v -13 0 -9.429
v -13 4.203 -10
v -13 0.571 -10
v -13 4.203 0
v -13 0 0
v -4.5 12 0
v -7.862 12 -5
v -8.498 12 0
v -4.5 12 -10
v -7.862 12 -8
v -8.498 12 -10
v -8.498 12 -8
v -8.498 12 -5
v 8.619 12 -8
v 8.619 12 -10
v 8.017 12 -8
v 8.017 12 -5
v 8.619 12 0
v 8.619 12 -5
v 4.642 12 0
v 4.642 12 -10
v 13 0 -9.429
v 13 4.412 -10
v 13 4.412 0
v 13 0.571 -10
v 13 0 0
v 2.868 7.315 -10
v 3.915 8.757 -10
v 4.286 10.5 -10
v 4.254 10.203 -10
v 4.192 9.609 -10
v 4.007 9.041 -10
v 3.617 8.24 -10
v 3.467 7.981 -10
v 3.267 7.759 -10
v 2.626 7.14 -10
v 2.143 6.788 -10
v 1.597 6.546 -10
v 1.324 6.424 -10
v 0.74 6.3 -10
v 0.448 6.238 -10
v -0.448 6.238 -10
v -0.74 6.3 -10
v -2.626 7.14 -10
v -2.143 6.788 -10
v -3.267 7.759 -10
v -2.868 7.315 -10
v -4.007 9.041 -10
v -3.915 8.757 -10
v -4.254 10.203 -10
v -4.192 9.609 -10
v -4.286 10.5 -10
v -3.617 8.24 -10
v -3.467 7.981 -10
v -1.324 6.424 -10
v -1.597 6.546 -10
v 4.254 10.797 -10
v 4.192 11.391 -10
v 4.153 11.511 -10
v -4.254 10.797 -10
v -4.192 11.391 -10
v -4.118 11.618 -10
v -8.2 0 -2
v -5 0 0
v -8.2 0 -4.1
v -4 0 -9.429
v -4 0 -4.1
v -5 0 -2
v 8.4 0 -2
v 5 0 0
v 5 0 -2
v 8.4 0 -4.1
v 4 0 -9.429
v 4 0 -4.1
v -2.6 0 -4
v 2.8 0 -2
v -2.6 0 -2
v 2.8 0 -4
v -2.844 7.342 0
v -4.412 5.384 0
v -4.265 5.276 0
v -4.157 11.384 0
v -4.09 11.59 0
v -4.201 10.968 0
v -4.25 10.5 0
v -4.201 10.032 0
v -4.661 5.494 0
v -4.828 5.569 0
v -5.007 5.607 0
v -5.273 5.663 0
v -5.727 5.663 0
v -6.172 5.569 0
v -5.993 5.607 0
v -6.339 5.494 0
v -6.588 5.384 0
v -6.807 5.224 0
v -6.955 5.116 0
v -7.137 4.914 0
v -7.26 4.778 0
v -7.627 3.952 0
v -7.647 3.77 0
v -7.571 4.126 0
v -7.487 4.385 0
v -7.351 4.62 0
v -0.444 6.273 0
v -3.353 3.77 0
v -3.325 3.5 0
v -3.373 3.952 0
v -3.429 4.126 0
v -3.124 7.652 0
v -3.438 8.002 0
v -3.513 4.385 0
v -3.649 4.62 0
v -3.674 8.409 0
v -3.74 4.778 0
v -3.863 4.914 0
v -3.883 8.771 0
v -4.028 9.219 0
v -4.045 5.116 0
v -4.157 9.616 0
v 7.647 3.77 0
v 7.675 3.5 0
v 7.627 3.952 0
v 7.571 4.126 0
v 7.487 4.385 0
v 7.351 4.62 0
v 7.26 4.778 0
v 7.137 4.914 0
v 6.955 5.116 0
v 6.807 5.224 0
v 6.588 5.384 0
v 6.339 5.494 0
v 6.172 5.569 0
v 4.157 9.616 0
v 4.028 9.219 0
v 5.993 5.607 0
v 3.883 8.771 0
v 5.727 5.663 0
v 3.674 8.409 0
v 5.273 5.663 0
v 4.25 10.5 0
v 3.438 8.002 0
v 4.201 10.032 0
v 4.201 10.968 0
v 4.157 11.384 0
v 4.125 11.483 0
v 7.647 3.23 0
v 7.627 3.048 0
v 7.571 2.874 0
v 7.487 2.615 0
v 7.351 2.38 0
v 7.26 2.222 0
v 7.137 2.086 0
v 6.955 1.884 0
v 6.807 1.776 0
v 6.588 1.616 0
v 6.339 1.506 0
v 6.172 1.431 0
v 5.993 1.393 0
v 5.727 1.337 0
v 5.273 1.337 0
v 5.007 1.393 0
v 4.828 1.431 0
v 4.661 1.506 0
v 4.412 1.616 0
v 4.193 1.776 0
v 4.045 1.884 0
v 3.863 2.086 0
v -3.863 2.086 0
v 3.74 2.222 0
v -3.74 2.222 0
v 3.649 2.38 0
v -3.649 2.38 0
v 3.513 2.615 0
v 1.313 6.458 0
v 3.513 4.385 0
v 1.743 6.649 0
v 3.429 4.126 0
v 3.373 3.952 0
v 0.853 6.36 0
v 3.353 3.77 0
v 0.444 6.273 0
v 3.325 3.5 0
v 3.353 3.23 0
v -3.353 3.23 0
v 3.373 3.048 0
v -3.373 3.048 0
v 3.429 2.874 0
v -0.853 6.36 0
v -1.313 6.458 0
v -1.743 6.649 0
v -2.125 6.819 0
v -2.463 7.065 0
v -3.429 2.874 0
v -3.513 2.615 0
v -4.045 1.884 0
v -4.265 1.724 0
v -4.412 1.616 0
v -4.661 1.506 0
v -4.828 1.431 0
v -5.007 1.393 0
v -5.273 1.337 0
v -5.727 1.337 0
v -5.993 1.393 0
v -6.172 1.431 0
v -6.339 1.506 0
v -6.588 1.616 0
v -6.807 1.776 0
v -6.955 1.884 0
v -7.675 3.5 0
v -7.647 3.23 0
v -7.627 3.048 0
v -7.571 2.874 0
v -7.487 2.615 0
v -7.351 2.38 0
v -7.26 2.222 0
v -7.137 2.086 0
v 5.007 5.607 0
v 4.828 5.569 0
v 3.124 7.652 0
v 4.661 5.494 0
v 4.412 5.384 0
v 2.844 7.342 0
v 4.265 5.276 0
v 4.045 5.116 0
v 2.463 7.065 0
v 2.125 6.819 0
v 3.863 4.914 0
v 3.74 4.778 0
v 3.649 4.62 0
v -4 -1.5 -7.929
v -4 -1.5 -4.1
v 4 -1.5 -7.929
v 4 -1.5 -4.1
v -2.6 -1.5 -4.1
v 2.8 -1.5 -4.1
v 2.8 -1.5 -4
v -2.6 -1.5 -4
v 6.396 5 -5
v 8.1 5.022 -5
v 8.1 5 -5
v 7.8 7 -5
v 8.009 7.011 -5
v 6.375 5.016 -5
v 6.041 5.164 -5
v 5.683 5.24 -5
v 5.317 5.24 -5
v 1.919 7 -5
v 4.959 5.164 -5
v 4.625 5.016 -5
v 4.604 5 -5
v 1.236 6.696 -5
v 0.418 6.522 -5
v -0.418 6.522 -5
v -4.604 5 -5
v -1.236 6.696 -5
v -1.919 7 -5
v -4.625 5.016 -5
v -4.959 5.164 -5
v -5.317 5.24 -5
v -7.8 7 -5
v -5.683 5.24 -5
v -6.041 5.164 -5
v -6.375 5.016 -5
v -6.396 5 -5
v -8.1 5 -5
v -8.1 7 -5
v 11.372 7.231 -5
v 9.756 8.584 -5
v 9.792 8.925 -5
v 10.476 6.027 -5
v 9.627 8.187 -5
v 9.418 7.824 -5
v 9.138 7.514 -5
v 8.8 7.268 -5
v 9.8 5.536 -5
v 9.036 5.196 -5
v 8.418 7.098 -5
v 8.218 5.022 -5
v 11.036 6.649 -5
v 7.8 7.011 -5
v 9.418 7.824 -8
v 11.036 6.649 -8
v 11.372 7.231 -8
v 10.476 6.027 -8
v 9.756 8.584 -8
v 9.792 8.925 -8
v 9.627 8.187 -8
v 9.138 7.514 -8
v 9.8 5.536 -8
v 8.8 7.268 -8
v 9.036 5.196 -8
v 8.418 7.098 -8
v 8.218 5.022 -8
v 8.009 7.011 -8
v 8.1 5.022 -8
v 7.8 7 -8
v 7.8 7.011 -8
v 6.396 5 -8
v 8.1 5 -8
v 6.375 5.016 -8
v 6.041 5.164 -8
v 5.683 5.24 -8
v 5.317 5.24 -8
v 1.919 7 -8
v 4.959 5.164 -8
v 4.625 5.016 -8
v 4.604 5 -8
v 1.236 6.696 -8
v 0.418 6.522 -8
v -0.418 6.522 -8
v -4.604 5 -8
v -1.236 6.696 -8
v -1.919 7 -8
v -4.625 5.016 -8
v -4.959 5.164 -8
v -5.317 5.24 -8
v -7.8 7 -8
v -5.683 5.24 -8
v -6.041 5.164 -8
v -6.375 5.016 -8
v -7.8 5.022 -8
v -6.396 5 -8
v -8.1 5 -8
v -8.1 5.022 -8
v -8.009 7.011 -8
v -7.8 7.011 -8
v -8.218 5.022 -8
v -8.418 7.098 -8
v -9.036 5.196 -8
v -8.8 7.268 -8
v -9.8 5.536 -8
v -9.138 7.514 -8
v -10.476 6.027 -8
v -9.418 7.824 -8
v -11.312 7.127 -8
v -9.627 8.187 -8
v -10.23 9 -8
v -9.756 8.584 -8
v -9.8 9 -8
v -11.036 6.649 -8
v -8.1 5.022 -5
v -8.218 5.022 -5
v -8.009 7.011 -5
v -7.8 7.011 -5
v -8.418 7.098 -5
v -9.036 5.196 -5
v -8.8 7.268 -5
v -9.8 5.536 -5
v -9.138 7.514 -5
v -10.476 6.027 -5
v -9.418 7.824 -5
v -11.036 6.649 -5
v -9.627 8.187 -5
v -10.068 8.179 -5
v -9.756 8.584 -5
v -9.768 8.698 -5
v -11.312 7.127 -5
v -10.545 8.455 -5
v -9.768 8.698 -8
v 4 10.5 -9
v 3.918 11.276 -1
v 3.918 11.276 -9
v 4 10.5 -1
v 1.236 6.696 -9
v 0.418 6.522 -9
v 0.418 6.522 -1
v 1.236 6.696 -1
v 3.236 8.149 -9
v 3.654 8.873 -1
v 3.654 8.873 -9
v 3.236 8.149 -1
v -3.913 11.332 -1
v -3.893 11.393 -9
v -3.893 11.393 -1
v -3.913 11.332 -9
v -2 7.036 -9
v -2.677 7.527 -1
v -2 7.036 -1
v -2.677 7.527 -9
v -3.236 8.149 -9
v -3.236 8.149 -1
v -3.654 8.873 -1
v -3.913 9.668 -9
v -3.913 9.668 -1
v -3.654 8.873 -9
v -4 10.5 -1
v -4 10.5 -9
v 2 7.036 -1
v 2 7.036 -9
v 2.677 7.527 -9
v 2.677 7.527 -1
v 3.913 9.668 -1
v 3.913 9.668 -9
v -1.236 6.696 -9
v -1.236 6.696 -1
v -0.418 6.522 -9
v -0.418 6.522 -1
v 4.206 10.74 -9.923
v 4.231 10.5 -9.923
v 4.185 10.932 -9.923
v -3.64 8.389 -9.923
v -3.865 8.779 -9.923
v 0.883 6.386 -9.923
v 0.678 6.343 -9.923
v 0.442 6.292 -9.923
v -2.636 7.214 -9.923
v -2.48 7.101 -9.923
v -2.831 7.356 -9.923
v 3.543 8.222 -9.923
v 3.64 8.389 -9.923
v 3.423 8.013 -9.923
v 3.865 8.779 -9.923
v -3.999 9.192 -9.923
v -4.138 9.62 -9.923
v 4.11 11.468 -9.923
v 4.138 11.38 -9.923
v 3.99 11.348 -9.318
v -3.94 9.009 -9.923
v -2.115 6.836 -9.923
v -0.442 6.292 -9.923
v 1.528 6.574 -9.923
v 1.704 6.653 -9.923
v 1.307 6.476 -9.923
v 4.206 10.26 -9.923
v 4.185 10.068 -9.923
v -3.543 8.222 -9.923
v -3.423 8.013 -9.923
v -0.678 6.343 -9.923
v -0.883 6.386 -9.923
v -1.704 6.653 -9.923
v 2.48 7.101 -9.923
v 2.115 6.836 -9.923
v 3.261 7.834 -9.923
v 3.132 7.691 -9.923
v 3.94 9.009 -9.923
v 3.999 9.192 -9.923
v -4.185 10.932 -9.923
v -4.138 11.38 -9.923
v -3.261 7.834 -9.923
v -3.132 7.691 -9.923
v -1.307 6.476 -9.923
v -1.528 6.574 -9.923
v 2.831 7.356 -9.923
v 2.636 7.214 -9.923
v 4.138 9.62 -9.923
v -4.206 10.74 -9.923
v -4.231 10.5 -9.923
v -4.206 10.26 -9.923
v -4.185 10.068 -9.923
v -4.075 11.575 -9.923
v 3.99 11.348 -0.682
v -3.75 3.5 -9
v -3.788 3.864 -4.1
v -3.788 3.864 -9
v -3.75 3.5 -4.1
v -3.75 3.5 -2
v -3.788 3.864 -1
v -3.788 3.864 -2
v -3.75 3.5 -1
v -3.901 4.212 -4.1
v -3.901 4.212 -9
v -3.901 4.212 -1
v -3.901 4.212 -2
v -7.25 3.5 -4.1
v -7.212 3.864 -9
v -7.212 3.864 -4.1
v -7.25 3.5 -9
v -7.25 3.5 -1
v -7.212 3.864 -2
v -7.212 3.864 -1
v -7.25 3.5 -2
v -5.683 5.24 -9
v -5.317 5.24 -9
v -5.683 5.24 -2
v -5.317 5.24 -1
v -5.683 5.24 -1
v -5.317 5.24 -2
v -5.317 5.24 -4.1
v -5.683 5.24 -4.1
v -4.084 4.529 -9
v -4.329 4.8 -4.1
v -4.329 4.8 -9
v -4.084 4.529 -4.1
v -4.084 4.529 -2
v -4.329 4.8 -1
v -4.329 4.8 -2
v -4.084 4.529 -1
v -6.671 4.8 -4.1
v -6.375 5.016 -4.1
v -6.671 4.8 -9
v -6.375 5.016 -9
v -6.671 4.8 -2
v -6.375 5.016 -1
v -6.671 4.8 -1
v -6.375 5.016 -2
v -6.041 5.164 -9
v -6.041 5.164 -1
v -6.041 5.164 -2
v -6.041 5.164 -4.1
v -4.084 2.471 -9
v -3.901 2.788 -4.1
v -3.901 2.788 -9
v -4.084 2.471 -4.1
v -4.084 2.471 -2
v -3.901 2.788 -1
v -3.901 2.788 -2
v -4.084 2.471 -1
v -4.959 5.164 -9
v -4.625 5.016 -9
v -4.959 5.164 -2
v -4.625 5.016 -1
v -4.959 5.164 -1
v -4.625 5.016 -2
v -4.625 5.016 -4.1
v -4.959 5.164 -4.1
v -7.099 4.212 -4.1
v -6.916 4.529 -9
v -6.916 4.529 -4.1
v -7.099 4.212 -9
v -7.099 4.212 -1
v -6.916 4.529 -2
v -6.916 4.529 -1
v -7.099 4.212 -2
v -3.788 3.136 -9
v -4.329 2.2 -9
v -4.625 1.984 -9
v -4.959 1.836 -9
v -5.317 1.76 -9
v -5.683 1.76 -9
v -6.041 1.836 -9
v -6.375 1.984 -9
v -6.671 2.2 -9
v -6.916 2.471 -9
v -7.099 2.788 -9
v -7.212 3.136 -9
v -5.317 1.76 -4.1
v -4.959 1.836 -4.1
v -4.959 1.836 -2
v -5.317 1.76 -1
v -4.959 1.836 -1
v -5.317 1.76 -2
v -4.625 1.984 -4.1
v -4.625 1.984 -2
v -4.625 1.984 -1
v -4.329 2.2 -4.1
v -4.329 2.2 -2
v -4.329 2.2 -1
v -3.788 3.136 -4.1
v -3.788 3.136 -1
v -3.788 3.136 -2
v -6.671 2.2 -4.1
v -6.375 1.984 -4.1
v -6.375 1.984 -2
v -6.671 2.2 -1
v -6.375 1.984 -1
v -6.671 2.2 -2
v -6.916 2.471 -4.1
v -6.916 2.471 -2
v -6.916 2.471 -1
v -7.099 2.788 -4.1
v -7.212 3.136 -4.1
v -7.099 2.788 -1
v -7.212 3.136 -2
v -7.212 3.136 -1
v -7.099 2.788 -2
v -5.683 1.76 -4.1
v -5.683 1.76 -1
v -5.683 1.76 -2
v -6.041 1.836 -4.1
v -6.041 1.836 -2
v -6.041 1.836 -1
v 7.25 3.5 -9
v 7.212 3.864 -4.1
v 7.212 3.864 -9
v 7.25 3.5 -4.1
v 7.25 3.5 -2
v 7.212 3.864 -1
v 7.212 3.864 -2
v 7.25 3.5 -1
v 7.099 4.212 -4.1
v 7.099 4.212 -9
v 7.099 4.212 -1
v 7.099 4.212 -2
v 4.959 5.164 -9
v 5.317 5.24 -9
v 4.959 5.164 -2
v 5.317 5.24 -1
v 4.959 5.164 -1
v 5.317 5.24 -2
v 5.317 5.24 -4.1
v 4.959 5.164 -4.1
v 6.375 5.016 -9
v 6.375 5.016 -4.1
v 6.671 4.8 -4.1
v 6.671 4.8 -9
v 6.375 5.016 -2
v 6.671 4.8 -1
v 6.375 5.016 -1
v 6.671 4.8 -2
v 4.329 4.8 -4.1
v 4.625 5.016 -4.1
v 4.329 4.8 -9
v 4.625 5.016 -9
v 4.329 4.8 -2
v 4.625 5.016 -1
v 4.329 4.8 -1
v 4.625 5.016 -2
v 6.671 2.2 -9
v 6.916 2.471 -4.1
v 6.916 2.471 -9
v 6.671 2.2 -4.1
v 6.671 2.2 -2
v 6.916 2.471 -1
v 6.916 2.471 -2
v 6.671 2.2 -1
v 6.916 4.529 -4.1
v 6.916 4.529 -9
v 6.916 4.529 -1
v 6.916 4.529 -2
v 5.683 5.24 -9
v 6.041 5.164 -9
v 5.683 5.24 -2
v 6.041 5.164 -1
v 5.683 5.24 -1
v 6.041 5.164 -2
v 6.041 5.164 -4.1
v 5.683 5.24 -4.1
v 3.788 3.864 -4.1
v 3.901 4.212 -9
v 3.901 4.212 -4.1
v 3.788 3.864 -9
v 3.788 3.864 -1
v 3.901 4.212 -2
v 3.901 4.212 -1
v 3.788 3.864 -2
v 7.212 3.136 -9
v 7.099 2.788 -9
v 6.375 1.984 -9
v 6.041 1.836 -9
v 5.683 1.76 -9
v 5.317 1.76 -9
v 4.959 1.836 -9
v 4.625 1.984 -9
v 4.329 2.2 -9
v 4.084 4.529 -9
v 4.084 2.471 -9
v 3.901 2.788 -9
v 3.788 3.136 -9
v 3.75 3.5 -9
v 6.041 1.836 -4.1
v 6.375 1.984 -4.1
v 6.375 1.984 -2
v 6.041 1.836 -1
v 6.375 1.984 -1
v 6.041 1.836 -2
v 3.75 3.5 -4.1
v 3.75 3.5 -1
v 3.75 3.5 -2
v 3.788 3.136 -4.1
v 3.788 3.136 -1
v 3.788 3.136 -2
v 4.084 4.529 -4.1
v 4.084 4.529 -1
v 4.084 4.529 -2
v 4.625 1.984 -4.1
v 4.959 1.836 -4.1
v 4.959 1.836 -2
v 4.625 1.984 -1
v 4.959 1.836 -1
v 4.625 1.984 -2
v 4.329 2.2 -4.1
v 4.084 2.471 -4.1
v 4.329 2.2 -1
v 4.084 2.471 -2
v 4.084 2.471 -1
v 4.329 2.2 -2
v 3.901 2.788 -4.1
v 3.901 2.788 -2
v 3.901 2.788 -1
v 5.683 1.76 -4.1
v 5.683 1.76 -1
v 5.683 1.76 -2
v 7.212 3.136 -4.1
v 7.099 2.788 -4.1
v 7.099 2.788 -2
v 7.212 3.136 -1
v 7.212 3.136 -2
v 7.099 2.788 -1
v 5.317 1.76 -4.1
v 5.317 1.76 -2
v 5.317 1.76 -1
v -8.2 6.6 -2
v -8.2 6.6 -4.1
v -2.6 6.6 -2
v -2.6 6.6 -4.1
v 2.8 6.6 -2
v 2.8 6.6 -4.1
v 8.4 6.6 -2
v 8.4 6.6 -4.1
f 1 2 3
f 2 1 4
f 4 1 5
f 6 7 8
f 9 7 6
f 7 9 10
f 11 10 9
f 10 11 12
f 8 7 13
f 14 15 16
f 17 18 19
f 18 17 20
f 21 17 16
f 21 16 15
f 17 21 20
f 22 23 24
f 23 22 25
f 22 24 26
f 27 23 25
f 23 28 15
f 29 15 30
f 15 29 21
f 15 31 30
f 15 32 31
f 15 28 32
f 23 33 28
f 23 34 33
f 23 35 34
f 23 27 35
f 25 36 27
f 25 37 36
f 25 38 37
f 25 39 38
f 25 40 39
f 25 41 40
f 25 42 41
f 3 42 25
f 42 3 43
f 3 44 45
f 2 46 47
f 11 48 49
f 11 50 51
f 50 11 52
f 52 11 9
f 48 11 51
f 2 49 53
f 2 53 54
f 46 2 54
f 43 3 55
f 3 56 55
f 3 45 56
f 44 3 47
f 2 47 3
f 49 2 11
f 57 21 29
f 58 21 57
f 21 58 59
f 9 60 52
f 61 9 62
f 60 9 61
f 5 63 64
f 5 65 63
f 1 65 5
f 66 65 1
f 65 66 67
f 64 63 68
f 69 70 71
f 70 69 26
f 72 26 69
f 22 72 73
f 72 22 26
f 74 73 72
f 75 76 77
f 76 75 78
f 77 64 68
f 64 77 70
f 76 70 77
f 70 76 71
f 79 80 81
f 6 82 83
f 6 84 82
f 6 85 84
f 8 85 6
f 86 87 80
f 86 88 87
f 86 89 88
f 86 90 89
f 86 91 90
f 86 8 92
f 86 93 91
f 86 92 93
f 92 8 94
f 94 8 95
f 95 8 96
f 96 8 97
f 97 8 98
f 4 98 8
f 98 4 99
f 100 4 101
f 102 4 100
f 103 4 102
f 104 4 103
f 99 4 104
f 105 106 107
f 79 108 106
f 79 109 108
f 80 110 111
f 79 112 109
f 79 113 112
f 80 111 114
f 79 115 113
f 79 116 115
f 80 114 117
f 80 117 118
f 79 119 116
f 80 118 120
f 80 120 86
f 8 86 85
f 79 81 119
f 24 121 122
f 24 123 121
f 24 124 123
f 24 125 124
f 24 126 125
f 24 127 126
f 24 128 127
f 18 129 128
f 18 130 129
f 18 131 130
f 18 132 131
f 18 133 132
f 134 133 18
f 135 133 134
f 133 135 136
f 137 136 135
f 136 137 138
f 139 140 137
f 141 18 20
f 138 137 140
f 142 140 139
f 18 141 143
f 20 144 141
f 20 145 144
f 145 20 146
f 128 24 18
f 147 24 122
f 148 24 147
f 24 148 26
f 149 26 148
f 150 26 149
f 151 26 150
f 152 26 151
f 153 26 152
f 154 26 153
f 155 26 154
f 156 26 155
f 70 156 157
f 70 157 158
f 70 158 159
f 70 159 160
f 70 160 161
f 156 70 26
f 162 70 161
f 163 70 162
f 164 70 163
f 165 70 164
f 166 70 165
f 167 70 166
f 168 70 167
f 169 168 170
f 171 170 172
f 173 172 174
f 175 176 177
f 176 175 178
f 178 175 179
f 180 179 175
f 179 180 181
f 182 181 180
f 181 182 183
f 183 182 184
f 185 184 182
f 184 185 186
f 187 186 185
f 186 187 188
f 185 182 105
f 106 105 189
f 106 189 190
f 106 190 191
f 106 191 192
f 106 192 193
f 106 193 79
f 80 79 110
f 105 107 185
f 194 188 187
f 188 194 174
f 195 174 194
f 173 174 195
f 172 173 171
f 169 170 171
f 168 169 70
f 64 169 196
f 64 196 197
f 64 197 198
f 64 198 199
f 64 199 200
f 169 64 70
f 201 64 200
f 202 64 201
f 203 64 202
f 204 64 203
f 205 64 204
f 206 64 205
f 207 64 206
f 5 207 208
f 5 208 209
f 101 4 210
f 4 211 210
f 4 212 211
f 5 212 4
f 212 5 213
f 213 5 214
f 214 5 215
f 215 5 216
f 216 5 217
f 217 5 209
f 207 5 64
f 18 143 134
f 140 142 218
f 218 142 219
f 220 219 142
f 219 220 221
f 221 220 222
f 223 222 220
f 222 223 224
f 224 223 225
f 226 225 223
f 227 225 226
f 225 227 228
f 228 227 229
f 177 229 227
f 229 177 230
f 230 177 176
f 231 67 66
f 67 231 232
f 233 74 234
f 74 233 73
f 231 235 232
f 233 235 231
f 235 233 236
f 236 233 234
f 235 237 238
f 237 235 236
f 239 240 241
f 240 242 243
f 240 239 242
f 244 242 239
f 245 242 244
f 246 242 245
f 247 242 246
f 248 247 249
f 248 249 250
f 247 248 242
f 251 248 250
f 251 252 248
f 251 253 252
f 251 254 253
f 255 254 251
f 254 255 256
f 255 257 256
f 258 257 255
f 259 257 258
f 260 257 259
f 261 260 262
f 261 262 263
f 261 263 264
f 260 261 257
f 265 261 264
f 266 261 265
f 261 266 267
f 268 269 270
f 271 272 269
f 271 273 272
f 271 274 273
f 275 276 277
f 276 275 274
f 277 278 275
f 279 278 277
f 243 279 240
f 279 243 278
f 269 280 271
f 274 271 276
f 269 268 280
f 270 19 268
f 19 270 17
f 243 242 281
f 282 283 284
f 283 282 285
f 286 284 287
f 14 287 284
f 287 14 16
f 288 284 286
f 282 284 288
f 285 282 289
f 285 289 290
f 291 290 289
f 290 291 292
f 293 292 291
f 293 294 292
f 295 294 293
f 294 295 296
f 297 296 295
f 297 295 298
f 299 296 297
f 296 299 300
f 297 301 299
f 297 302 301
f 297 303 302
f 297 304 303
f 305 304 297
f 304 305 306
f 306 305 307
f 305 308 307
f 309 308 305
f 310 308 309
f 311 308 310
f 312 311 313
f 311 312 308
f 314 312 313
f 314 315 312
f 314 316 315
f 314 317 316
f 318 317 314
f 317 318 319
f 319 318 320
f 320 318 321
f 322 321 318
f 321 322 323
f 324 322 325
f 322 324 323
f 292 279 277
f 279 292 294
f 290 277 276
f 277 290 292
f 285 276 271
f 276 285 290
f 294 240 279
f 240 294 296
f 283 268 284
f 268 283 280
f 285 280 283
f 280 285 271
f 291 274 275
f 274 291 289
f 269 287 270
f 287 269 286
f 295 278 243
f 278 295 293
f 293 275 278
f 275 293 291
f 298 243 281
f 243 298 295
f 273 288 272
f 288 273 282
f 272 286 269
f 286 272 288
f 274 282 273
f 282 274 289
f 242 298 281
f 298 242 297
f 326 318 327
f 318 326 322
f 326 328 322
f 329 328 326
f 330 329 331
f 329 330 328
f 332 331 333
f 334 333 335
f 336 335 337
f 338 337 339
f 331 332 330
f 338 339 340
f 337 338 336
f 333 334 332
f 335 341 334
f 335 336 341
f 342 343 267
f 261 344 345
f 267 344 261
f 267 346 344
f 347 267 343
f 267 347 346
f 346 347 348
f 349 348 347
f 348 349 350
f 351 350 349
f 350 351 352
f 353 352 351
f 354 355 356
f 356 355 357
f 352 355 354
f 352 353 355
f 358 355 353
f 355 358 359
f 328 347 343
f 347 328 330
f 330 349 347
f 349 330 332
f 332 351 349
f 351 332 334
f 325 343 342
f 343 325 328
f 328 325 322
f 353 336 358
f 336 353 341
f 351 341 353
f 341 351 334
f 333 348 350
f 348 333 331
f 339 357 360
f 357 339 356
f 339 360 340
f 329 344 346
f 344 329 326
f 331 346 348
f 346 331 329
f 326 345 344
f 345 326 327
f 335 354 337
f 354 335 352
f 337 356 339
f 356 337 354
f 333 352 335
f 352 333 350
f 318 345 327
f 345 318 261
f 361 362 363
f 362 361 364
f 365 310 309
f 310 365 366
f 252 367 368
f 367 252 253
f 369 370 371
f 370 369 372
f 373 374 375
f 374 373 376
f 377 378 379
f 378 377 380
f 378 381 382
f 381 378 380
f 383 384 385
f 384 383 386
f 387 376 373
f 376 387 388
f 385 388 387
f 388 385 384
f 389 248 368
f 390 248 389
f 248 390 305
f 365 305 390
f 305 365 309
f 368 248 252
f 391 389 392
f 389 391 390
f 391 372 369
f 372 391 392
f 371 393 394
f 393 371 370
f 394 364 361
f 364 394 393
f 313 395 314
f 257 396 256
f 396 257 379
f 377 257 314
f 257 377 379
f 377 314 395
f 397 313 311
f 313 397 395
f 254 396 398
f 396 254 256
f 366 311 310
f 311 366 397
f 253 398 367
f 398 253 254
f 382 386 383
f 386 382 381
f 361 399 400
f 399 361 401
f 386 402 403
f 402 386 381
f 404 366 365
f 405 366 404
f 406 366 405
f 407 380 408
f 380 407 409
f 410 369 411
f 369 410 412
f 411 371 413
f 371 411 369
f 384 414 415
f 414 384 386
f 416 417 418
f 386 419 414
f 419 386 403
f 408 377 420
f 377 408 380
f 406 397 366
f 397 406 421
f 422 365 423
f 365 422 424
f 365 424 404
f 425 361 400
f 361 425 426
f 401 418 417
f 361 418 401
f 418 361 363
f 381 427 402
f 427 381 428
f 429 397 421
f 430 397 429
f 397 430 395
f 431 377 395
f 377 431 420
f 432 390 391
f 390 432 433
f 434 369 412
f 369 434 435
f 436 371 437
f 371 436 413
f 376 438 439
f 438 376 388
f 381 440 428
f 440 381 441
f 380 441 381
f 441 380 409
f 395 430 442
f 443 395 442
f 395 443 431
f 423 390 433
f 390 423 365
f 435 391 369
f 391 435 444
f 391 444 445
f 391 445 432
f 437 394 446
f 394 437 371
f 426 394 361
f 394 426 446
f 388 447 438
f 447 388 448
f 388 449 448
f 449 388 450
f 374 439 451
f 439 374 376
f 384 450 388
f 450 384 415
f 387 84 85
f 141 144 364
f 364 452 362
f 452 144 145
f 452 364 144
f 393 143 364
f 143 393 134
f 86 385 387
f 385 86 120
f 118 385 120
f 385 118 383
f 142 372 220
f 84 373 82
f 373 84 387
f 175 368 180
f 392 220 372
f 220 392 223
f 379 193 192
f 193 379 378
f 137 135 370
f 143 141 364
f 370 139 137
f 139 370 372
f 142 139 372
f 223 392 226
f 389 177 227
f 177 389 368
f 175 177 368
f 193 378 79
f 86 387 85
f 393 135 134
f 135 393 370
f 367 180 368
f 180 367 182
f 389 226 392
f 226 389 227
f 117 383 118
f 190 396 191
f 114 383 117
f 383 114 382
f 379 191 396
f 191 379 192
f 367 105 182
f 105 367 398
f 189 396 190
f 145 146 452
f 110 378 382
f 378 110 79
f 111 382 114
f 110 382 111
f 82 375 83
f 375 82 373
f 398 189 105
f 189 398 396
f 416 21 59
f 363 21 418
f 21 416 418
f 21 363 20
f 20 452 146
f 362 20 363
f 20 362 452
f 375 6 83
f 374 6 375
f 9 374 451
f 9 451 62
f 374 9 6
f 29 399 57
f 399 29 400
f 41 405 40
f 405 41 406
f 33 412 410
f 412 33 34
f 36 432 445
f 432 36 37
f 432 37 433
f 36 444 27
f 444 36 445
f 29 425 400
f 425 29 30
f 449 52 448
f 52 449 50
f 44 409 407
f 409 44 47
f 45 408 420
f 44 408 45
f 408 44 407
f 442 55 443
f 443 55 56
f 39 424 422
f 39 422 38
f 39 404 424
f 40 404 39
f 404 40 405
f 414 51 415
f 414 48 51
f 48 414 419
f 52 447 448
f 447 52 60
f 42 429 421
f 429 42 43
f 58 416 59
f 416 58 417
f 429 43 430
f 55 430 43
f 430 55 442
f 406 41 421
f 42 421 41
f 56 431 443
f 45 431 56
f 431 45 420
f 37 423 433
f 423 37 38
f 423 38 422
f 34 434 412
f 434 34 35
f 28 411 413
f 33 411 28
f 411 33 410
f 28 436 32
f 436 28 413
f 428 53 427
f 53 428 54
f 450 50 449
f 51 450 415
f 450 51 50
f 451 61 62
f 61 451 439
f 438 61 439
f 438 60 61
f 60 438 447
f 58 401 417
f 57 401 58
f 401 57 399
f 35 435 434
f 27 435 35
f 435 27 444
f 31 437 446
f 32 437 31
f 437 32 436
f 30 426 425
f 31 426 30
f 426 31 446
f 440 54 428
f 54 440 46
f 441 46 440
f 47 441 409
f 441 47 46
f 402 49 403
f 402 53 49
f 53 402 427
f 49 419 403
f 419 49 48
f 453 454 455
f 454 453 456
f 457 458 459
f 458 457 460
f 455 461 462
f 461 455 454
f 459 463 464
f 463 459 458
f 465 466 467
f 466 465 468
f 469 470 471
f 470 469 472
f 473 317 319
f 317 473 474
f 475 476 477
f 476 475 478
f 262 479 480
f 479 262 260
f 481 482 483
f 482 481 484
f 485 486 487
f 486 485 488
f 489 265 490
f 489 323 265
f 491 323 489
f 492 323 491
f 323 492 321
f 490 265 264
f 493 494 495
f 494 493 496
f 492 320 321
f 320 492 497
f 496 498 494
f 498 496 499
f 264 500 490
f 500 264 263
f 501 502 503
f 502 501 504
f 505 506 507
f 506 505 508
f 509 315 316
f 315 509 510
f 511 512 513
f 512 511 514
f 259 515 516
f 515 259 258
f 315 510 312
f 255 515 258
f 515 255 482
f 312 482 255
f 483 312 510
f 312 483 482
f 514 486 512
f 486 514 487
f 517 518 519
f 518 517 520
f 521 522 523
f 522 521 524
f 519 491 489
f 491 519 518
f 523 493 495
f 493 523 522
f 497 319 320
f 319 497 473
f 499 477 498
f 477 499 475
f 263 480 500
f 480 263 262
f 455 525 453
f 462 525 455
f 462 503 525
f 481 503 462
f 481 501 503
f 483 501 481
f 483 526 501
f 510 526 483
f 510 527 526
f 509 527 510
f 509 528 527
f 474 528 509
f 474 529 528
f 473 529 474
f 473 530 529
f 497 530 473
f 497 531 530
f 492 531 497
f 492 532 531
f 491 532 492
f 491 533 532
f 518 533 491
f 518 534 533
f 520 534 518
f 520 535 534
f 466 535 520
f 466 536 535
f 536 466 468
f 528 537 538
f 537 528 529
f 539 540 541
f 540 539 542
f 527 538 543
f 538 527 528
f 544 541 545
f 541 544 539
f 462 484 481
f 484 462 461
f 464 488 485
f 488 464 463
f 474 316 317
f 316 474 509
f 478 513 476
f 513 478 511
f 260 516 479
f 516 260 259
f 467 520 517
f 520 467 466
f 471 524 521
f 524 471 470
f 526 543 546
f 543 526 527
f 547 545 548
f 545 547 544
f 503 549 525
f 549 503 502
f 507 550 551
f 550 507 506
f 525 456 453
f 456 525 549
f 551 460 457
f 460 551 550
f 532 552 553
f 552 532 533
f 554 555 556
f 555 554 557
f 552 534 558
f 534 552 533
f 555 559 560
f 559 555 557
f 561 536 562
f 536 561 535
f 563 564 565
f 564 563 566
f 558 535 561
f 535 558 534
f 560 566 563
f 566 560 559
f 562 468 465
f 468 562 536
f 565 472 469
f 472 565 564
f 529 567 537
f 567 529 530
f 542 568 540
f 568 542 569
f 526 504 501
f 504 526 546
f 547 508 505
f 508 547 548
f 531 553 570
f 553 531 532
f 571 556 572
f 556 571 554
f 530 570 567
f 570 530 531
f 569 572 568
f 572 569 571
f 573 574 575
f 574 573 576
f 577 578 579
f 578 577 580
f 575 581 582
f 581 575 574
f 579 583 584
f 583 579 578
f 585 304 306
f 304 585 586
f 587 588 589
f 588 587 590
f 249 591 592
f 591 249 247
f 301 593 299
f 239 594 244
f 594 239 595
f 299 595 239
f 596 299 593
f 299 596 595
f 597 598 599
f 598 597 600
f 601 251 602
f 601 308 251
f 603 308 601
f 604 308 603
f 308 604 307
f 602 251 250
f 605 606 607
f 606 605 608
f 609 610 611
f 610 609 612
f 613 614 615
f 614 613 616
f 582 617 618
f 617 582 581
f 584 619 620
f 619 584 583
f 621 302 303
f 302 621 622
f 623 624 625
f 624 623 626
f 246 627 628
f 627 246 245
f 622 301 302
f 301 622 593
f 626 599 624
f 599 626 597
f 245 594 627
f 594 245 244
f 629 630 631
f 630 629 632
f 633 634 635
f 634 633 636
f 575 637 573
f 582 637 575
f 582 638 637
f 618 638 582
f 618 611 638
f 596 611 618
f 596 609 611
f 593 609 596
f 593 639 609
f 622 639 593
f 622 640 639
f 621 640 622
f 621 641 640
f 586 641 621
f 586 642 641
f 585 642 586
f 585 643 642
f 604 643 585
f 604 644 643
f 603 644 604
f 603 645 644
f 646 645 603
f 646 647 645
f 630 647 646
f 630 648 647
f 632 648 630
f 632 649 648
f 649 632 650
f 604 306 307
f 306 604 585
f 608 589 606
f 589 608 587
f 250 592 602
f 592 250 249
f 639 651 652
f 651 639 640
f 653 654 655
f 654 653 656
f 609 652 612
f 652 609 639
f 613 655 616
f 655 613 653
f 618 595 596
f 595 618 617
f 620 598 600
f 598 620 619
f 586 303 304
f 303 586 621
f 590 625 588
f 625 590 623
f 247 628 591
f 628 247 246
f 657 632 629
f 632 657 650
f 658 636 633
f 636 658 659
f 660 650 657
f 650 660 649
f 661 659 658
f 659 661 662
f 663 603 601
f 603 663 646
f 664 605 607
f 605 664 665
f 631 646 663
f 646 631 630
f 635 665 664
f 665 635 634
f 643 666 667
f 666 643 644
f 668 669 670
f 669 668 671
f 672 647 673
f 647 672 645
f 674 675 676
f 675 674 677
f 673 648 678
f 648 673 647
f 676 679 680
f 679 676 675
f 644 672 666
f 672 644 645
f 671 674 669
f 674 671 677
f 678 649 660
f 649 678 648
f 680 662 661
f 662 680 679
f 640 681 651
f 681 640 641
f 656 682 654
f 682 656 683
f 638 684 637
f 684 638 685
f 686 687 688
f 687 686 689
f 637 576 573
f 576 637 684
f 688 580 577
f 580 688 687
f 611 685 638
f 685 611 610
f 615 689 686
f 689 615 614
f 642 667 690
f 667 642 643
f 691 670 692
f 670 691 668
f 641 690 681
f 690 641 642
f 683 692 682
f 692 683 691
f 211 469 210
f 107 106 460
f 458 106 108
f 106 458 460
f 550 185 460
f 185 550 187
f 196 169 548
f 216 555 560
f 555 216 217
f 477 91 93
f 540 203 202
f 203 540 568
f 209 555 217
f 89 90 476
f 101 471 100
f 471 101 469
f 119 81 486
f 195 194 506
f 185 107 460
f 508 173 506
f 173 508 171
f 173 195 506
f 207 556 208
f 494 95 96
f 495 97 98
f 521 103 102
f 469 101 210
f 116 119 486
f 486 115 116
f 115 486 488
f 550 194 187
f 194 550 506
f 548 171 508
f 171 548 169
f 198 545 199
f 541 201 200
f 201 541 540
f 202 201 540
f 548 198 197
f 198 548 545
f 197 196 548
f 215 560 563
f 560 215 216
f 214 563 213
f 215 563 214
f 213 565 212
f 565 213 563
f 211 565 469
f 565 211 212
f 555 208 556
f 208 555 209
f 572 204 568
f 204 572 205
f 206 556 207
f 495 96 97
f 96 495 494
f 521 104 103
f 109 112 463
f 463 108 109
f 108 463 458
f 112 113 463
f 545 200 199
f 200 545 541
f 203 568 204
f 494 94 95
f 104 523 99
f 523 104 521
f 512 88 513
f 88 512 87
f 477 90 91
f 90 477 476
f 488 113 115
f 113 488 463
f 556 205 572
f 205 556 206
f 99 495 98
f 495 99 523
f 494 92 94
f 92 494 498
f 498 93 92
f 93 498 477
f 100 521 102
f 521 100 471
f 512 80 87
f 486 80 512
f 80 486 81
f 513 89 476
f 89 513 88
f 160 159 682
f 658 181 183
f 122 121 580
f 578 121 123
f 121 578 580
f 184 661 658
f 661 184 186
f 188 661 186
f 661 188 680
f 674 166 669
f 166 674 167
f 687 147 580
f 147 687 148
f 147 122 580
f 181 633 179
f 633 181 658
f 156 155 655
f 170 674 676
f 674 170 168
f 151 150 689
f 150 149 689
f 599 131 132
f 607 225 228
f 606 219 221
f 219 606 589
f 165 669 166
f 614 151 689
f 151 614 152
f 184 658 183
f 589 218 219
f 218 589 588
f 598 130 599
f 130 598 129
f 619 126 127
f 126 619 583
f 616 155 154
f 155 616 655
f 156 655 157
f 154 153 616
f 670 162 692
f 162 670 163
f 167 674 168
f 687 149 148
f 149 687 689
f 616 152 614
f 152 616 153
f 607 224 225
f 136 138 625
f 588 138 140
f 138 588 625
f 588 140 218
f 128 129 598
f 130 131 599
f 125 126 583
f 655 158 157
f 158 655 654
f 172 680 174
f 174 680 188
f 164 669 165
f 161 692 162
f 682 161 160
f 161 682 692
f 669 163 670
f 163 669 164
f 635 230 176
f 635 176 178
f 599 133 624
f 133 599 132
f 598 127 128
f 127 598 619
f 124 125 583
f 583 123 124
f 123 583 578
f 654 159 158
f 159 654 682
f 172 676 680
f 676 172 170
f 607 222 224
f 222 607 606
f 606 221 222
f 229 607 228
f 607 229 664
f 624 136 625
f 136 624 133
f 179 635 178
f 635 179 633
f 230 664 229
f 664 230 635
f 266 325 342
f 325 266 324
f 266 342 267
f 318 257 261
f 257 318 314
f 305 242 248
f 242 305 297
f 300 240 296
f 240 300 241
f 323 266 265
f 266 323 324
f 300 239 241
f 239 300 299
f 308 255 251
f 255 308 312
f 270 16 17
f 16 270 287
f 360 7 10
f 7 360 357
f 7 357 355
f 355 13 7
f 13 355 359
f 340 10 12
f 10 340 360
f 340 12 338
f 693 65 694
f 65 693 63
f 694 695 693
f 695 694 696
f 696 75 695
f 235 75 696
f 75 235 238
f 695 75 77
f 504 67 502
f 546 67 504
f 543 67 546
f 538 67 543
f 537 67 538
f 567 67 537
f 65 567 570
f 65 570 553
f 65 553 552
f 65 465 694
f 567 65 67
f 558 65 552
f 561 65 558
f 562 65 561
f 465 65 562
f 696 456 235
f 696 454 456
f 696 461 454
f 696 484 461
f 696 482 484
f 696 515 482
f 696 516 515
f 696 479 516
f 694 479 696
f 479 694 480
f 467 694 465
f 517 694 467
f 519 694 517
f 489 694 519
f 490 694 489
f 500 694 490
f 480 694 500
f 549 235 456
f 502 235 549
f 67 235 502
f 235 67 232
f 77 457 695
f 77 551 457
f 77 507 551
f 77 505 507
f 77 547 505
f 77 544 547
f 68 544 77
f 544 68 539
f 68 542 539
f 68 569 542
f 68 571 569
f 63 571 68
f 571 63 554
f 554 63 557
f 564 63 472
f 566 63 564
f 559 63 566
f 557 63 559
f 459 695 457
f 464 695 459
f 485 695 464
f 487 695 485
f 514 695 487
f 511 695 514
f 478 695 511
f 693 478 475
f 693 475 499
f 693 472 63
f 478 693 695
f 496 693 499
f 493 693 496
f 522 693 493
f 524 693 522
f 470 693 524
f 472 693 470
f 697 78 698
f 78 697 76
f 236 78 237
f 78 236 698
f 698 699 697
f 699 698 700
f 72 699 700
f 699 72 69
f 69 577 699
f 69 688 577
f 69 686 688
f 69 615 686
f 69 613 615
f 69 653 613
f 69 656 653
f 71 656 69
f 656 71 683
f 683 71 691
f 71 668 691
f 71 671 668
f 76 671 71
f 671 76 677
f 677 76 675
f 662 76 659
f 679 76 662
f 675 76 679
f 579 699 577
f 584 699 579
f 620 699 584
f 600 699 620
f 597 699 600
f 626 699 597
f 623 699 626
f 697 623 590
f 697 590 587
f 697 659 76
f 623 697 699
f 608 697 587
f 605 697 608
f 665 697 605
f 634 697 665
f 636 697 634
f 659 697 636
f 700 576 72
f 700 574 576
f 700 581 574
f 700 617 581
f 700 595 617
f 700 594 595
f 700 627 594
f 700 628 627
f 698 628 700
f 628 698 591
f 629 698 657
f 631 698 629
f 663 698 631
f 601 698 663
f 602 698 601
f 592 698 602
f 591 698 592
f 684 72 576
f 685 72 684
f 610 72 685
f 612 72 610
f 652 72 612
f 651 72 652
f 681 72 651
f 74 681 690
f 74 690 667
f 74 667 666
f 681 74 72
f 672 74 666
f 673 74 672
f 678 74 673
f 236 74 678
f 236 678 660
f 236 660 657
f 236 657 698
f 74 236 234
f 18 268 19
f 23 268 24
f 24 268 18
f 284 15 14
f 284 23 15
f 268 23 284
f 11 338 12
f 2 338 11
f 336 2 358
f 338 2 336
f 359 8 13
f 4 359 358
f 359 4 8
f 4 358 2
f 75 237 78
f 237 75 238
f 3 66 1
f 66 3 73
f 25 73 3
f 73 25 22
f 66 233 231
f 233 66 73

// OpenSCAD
// PRUSA iteration4
// Y holder front
// GNU GPL v3
// Josef Průša <iam@josefprusa.cz> and contributors
// http://www.reprap.org/wiki/Prusa_Mendel
// http://prusamendel.org

module ziptie_round_edge()
{
    difference()
    {
        translate([0,0,0]) rotate([90,0,0]) cylinder( h=3, r=4, $fn=30 );  
        translate([0,1,0]) rotate([90,0,0]) cylinder( h=5, r=2, $fn=30 );  
        translate([-10,-4,0]) cube([20,5,5]);
        translate([-20,-4,-13]) cube([20,5,20]);
    }
}


module part()    
{

    difference()
    {
        union()
        {
            // body block
            translate([-13,0,0]) cube([26,10,12]);
            translate([-4,0,-1.5]) cube([8,10,2]);
        }

        // y-axis cut
        translate([0,11,10.5]) rotate([90,0,0]) cylinder( h=14, r=4, $fn=30 );
        translate([0,11,10.5]) rotate([90,0,0]) cylinder( h=2, r1=4.5, r2=4, $fn=30 );
        translate([0,1,10.5]) rotate([90,0,0]) cylinder( h=2, r1=4, r2=4.5, $fn=30 );
        translate([-7,-1,14.5]) rotate([0,45,0]) cube([10,20,10]);
        translate([0,11,10.5]) rotate([90,0,0]) cylinder( h=1.4, r1=5, r2=4, $fn=30 );

        // screw holes
        translate([-5.5,9,3.5]) rotate([90,0,0]) cylinder( h=20, r=1.75, $fn=30 );
        translate([5.5,9,3.5]) rotate([90,0,0]) cylinder( h=20, r=1.75, $fn=30 );
        translate([-5.5,1,3.5]) rotate([90,0,0]) cylinder( h=2, r1=1.75, r2=2.6, $fn=30 );
        translate([5.5,1,3.5]) rotate([90,0,0]) cylinder( h=2, r1=1.75, r2=2.6, $fn=30 );

        // ziptie
        translate([7.8,8,9]) ziptie_round_edge();
        translate([-7.8,5,9]) rotate([0,0,180]) ziptie_round_edge();
        translate([-8.1,5,5]) cube([16.2,3,2]);
        translate([0.8,5,24.5]) rotate([0,60,0]) cube([20,3,2]);
        translate([-1.8,5,26.5]) rotate([0,120,0]) cube([20,3,2]);

        // nuts
        translate([-8.2,2,-3.4]) cube([5.6,2.1,10]);
        translate([2.8,2,-3.4]) cube([5.6,2.1,10]);

        // upper corners
        translate([4,-1,20]) rotate([0,60,0]) cube([20,30,20]);
        translate([-21.2,-1,30]) rotate([0,120,0]) cube([20,30,20]);
        translate([-5,-6,-2]) cube([10,10,2]);
        translate([-15,10,-6.5]) rotate([45,0,0]) cube([30,5,5]);

    }
}

rotate([-90,0,0]) part();
